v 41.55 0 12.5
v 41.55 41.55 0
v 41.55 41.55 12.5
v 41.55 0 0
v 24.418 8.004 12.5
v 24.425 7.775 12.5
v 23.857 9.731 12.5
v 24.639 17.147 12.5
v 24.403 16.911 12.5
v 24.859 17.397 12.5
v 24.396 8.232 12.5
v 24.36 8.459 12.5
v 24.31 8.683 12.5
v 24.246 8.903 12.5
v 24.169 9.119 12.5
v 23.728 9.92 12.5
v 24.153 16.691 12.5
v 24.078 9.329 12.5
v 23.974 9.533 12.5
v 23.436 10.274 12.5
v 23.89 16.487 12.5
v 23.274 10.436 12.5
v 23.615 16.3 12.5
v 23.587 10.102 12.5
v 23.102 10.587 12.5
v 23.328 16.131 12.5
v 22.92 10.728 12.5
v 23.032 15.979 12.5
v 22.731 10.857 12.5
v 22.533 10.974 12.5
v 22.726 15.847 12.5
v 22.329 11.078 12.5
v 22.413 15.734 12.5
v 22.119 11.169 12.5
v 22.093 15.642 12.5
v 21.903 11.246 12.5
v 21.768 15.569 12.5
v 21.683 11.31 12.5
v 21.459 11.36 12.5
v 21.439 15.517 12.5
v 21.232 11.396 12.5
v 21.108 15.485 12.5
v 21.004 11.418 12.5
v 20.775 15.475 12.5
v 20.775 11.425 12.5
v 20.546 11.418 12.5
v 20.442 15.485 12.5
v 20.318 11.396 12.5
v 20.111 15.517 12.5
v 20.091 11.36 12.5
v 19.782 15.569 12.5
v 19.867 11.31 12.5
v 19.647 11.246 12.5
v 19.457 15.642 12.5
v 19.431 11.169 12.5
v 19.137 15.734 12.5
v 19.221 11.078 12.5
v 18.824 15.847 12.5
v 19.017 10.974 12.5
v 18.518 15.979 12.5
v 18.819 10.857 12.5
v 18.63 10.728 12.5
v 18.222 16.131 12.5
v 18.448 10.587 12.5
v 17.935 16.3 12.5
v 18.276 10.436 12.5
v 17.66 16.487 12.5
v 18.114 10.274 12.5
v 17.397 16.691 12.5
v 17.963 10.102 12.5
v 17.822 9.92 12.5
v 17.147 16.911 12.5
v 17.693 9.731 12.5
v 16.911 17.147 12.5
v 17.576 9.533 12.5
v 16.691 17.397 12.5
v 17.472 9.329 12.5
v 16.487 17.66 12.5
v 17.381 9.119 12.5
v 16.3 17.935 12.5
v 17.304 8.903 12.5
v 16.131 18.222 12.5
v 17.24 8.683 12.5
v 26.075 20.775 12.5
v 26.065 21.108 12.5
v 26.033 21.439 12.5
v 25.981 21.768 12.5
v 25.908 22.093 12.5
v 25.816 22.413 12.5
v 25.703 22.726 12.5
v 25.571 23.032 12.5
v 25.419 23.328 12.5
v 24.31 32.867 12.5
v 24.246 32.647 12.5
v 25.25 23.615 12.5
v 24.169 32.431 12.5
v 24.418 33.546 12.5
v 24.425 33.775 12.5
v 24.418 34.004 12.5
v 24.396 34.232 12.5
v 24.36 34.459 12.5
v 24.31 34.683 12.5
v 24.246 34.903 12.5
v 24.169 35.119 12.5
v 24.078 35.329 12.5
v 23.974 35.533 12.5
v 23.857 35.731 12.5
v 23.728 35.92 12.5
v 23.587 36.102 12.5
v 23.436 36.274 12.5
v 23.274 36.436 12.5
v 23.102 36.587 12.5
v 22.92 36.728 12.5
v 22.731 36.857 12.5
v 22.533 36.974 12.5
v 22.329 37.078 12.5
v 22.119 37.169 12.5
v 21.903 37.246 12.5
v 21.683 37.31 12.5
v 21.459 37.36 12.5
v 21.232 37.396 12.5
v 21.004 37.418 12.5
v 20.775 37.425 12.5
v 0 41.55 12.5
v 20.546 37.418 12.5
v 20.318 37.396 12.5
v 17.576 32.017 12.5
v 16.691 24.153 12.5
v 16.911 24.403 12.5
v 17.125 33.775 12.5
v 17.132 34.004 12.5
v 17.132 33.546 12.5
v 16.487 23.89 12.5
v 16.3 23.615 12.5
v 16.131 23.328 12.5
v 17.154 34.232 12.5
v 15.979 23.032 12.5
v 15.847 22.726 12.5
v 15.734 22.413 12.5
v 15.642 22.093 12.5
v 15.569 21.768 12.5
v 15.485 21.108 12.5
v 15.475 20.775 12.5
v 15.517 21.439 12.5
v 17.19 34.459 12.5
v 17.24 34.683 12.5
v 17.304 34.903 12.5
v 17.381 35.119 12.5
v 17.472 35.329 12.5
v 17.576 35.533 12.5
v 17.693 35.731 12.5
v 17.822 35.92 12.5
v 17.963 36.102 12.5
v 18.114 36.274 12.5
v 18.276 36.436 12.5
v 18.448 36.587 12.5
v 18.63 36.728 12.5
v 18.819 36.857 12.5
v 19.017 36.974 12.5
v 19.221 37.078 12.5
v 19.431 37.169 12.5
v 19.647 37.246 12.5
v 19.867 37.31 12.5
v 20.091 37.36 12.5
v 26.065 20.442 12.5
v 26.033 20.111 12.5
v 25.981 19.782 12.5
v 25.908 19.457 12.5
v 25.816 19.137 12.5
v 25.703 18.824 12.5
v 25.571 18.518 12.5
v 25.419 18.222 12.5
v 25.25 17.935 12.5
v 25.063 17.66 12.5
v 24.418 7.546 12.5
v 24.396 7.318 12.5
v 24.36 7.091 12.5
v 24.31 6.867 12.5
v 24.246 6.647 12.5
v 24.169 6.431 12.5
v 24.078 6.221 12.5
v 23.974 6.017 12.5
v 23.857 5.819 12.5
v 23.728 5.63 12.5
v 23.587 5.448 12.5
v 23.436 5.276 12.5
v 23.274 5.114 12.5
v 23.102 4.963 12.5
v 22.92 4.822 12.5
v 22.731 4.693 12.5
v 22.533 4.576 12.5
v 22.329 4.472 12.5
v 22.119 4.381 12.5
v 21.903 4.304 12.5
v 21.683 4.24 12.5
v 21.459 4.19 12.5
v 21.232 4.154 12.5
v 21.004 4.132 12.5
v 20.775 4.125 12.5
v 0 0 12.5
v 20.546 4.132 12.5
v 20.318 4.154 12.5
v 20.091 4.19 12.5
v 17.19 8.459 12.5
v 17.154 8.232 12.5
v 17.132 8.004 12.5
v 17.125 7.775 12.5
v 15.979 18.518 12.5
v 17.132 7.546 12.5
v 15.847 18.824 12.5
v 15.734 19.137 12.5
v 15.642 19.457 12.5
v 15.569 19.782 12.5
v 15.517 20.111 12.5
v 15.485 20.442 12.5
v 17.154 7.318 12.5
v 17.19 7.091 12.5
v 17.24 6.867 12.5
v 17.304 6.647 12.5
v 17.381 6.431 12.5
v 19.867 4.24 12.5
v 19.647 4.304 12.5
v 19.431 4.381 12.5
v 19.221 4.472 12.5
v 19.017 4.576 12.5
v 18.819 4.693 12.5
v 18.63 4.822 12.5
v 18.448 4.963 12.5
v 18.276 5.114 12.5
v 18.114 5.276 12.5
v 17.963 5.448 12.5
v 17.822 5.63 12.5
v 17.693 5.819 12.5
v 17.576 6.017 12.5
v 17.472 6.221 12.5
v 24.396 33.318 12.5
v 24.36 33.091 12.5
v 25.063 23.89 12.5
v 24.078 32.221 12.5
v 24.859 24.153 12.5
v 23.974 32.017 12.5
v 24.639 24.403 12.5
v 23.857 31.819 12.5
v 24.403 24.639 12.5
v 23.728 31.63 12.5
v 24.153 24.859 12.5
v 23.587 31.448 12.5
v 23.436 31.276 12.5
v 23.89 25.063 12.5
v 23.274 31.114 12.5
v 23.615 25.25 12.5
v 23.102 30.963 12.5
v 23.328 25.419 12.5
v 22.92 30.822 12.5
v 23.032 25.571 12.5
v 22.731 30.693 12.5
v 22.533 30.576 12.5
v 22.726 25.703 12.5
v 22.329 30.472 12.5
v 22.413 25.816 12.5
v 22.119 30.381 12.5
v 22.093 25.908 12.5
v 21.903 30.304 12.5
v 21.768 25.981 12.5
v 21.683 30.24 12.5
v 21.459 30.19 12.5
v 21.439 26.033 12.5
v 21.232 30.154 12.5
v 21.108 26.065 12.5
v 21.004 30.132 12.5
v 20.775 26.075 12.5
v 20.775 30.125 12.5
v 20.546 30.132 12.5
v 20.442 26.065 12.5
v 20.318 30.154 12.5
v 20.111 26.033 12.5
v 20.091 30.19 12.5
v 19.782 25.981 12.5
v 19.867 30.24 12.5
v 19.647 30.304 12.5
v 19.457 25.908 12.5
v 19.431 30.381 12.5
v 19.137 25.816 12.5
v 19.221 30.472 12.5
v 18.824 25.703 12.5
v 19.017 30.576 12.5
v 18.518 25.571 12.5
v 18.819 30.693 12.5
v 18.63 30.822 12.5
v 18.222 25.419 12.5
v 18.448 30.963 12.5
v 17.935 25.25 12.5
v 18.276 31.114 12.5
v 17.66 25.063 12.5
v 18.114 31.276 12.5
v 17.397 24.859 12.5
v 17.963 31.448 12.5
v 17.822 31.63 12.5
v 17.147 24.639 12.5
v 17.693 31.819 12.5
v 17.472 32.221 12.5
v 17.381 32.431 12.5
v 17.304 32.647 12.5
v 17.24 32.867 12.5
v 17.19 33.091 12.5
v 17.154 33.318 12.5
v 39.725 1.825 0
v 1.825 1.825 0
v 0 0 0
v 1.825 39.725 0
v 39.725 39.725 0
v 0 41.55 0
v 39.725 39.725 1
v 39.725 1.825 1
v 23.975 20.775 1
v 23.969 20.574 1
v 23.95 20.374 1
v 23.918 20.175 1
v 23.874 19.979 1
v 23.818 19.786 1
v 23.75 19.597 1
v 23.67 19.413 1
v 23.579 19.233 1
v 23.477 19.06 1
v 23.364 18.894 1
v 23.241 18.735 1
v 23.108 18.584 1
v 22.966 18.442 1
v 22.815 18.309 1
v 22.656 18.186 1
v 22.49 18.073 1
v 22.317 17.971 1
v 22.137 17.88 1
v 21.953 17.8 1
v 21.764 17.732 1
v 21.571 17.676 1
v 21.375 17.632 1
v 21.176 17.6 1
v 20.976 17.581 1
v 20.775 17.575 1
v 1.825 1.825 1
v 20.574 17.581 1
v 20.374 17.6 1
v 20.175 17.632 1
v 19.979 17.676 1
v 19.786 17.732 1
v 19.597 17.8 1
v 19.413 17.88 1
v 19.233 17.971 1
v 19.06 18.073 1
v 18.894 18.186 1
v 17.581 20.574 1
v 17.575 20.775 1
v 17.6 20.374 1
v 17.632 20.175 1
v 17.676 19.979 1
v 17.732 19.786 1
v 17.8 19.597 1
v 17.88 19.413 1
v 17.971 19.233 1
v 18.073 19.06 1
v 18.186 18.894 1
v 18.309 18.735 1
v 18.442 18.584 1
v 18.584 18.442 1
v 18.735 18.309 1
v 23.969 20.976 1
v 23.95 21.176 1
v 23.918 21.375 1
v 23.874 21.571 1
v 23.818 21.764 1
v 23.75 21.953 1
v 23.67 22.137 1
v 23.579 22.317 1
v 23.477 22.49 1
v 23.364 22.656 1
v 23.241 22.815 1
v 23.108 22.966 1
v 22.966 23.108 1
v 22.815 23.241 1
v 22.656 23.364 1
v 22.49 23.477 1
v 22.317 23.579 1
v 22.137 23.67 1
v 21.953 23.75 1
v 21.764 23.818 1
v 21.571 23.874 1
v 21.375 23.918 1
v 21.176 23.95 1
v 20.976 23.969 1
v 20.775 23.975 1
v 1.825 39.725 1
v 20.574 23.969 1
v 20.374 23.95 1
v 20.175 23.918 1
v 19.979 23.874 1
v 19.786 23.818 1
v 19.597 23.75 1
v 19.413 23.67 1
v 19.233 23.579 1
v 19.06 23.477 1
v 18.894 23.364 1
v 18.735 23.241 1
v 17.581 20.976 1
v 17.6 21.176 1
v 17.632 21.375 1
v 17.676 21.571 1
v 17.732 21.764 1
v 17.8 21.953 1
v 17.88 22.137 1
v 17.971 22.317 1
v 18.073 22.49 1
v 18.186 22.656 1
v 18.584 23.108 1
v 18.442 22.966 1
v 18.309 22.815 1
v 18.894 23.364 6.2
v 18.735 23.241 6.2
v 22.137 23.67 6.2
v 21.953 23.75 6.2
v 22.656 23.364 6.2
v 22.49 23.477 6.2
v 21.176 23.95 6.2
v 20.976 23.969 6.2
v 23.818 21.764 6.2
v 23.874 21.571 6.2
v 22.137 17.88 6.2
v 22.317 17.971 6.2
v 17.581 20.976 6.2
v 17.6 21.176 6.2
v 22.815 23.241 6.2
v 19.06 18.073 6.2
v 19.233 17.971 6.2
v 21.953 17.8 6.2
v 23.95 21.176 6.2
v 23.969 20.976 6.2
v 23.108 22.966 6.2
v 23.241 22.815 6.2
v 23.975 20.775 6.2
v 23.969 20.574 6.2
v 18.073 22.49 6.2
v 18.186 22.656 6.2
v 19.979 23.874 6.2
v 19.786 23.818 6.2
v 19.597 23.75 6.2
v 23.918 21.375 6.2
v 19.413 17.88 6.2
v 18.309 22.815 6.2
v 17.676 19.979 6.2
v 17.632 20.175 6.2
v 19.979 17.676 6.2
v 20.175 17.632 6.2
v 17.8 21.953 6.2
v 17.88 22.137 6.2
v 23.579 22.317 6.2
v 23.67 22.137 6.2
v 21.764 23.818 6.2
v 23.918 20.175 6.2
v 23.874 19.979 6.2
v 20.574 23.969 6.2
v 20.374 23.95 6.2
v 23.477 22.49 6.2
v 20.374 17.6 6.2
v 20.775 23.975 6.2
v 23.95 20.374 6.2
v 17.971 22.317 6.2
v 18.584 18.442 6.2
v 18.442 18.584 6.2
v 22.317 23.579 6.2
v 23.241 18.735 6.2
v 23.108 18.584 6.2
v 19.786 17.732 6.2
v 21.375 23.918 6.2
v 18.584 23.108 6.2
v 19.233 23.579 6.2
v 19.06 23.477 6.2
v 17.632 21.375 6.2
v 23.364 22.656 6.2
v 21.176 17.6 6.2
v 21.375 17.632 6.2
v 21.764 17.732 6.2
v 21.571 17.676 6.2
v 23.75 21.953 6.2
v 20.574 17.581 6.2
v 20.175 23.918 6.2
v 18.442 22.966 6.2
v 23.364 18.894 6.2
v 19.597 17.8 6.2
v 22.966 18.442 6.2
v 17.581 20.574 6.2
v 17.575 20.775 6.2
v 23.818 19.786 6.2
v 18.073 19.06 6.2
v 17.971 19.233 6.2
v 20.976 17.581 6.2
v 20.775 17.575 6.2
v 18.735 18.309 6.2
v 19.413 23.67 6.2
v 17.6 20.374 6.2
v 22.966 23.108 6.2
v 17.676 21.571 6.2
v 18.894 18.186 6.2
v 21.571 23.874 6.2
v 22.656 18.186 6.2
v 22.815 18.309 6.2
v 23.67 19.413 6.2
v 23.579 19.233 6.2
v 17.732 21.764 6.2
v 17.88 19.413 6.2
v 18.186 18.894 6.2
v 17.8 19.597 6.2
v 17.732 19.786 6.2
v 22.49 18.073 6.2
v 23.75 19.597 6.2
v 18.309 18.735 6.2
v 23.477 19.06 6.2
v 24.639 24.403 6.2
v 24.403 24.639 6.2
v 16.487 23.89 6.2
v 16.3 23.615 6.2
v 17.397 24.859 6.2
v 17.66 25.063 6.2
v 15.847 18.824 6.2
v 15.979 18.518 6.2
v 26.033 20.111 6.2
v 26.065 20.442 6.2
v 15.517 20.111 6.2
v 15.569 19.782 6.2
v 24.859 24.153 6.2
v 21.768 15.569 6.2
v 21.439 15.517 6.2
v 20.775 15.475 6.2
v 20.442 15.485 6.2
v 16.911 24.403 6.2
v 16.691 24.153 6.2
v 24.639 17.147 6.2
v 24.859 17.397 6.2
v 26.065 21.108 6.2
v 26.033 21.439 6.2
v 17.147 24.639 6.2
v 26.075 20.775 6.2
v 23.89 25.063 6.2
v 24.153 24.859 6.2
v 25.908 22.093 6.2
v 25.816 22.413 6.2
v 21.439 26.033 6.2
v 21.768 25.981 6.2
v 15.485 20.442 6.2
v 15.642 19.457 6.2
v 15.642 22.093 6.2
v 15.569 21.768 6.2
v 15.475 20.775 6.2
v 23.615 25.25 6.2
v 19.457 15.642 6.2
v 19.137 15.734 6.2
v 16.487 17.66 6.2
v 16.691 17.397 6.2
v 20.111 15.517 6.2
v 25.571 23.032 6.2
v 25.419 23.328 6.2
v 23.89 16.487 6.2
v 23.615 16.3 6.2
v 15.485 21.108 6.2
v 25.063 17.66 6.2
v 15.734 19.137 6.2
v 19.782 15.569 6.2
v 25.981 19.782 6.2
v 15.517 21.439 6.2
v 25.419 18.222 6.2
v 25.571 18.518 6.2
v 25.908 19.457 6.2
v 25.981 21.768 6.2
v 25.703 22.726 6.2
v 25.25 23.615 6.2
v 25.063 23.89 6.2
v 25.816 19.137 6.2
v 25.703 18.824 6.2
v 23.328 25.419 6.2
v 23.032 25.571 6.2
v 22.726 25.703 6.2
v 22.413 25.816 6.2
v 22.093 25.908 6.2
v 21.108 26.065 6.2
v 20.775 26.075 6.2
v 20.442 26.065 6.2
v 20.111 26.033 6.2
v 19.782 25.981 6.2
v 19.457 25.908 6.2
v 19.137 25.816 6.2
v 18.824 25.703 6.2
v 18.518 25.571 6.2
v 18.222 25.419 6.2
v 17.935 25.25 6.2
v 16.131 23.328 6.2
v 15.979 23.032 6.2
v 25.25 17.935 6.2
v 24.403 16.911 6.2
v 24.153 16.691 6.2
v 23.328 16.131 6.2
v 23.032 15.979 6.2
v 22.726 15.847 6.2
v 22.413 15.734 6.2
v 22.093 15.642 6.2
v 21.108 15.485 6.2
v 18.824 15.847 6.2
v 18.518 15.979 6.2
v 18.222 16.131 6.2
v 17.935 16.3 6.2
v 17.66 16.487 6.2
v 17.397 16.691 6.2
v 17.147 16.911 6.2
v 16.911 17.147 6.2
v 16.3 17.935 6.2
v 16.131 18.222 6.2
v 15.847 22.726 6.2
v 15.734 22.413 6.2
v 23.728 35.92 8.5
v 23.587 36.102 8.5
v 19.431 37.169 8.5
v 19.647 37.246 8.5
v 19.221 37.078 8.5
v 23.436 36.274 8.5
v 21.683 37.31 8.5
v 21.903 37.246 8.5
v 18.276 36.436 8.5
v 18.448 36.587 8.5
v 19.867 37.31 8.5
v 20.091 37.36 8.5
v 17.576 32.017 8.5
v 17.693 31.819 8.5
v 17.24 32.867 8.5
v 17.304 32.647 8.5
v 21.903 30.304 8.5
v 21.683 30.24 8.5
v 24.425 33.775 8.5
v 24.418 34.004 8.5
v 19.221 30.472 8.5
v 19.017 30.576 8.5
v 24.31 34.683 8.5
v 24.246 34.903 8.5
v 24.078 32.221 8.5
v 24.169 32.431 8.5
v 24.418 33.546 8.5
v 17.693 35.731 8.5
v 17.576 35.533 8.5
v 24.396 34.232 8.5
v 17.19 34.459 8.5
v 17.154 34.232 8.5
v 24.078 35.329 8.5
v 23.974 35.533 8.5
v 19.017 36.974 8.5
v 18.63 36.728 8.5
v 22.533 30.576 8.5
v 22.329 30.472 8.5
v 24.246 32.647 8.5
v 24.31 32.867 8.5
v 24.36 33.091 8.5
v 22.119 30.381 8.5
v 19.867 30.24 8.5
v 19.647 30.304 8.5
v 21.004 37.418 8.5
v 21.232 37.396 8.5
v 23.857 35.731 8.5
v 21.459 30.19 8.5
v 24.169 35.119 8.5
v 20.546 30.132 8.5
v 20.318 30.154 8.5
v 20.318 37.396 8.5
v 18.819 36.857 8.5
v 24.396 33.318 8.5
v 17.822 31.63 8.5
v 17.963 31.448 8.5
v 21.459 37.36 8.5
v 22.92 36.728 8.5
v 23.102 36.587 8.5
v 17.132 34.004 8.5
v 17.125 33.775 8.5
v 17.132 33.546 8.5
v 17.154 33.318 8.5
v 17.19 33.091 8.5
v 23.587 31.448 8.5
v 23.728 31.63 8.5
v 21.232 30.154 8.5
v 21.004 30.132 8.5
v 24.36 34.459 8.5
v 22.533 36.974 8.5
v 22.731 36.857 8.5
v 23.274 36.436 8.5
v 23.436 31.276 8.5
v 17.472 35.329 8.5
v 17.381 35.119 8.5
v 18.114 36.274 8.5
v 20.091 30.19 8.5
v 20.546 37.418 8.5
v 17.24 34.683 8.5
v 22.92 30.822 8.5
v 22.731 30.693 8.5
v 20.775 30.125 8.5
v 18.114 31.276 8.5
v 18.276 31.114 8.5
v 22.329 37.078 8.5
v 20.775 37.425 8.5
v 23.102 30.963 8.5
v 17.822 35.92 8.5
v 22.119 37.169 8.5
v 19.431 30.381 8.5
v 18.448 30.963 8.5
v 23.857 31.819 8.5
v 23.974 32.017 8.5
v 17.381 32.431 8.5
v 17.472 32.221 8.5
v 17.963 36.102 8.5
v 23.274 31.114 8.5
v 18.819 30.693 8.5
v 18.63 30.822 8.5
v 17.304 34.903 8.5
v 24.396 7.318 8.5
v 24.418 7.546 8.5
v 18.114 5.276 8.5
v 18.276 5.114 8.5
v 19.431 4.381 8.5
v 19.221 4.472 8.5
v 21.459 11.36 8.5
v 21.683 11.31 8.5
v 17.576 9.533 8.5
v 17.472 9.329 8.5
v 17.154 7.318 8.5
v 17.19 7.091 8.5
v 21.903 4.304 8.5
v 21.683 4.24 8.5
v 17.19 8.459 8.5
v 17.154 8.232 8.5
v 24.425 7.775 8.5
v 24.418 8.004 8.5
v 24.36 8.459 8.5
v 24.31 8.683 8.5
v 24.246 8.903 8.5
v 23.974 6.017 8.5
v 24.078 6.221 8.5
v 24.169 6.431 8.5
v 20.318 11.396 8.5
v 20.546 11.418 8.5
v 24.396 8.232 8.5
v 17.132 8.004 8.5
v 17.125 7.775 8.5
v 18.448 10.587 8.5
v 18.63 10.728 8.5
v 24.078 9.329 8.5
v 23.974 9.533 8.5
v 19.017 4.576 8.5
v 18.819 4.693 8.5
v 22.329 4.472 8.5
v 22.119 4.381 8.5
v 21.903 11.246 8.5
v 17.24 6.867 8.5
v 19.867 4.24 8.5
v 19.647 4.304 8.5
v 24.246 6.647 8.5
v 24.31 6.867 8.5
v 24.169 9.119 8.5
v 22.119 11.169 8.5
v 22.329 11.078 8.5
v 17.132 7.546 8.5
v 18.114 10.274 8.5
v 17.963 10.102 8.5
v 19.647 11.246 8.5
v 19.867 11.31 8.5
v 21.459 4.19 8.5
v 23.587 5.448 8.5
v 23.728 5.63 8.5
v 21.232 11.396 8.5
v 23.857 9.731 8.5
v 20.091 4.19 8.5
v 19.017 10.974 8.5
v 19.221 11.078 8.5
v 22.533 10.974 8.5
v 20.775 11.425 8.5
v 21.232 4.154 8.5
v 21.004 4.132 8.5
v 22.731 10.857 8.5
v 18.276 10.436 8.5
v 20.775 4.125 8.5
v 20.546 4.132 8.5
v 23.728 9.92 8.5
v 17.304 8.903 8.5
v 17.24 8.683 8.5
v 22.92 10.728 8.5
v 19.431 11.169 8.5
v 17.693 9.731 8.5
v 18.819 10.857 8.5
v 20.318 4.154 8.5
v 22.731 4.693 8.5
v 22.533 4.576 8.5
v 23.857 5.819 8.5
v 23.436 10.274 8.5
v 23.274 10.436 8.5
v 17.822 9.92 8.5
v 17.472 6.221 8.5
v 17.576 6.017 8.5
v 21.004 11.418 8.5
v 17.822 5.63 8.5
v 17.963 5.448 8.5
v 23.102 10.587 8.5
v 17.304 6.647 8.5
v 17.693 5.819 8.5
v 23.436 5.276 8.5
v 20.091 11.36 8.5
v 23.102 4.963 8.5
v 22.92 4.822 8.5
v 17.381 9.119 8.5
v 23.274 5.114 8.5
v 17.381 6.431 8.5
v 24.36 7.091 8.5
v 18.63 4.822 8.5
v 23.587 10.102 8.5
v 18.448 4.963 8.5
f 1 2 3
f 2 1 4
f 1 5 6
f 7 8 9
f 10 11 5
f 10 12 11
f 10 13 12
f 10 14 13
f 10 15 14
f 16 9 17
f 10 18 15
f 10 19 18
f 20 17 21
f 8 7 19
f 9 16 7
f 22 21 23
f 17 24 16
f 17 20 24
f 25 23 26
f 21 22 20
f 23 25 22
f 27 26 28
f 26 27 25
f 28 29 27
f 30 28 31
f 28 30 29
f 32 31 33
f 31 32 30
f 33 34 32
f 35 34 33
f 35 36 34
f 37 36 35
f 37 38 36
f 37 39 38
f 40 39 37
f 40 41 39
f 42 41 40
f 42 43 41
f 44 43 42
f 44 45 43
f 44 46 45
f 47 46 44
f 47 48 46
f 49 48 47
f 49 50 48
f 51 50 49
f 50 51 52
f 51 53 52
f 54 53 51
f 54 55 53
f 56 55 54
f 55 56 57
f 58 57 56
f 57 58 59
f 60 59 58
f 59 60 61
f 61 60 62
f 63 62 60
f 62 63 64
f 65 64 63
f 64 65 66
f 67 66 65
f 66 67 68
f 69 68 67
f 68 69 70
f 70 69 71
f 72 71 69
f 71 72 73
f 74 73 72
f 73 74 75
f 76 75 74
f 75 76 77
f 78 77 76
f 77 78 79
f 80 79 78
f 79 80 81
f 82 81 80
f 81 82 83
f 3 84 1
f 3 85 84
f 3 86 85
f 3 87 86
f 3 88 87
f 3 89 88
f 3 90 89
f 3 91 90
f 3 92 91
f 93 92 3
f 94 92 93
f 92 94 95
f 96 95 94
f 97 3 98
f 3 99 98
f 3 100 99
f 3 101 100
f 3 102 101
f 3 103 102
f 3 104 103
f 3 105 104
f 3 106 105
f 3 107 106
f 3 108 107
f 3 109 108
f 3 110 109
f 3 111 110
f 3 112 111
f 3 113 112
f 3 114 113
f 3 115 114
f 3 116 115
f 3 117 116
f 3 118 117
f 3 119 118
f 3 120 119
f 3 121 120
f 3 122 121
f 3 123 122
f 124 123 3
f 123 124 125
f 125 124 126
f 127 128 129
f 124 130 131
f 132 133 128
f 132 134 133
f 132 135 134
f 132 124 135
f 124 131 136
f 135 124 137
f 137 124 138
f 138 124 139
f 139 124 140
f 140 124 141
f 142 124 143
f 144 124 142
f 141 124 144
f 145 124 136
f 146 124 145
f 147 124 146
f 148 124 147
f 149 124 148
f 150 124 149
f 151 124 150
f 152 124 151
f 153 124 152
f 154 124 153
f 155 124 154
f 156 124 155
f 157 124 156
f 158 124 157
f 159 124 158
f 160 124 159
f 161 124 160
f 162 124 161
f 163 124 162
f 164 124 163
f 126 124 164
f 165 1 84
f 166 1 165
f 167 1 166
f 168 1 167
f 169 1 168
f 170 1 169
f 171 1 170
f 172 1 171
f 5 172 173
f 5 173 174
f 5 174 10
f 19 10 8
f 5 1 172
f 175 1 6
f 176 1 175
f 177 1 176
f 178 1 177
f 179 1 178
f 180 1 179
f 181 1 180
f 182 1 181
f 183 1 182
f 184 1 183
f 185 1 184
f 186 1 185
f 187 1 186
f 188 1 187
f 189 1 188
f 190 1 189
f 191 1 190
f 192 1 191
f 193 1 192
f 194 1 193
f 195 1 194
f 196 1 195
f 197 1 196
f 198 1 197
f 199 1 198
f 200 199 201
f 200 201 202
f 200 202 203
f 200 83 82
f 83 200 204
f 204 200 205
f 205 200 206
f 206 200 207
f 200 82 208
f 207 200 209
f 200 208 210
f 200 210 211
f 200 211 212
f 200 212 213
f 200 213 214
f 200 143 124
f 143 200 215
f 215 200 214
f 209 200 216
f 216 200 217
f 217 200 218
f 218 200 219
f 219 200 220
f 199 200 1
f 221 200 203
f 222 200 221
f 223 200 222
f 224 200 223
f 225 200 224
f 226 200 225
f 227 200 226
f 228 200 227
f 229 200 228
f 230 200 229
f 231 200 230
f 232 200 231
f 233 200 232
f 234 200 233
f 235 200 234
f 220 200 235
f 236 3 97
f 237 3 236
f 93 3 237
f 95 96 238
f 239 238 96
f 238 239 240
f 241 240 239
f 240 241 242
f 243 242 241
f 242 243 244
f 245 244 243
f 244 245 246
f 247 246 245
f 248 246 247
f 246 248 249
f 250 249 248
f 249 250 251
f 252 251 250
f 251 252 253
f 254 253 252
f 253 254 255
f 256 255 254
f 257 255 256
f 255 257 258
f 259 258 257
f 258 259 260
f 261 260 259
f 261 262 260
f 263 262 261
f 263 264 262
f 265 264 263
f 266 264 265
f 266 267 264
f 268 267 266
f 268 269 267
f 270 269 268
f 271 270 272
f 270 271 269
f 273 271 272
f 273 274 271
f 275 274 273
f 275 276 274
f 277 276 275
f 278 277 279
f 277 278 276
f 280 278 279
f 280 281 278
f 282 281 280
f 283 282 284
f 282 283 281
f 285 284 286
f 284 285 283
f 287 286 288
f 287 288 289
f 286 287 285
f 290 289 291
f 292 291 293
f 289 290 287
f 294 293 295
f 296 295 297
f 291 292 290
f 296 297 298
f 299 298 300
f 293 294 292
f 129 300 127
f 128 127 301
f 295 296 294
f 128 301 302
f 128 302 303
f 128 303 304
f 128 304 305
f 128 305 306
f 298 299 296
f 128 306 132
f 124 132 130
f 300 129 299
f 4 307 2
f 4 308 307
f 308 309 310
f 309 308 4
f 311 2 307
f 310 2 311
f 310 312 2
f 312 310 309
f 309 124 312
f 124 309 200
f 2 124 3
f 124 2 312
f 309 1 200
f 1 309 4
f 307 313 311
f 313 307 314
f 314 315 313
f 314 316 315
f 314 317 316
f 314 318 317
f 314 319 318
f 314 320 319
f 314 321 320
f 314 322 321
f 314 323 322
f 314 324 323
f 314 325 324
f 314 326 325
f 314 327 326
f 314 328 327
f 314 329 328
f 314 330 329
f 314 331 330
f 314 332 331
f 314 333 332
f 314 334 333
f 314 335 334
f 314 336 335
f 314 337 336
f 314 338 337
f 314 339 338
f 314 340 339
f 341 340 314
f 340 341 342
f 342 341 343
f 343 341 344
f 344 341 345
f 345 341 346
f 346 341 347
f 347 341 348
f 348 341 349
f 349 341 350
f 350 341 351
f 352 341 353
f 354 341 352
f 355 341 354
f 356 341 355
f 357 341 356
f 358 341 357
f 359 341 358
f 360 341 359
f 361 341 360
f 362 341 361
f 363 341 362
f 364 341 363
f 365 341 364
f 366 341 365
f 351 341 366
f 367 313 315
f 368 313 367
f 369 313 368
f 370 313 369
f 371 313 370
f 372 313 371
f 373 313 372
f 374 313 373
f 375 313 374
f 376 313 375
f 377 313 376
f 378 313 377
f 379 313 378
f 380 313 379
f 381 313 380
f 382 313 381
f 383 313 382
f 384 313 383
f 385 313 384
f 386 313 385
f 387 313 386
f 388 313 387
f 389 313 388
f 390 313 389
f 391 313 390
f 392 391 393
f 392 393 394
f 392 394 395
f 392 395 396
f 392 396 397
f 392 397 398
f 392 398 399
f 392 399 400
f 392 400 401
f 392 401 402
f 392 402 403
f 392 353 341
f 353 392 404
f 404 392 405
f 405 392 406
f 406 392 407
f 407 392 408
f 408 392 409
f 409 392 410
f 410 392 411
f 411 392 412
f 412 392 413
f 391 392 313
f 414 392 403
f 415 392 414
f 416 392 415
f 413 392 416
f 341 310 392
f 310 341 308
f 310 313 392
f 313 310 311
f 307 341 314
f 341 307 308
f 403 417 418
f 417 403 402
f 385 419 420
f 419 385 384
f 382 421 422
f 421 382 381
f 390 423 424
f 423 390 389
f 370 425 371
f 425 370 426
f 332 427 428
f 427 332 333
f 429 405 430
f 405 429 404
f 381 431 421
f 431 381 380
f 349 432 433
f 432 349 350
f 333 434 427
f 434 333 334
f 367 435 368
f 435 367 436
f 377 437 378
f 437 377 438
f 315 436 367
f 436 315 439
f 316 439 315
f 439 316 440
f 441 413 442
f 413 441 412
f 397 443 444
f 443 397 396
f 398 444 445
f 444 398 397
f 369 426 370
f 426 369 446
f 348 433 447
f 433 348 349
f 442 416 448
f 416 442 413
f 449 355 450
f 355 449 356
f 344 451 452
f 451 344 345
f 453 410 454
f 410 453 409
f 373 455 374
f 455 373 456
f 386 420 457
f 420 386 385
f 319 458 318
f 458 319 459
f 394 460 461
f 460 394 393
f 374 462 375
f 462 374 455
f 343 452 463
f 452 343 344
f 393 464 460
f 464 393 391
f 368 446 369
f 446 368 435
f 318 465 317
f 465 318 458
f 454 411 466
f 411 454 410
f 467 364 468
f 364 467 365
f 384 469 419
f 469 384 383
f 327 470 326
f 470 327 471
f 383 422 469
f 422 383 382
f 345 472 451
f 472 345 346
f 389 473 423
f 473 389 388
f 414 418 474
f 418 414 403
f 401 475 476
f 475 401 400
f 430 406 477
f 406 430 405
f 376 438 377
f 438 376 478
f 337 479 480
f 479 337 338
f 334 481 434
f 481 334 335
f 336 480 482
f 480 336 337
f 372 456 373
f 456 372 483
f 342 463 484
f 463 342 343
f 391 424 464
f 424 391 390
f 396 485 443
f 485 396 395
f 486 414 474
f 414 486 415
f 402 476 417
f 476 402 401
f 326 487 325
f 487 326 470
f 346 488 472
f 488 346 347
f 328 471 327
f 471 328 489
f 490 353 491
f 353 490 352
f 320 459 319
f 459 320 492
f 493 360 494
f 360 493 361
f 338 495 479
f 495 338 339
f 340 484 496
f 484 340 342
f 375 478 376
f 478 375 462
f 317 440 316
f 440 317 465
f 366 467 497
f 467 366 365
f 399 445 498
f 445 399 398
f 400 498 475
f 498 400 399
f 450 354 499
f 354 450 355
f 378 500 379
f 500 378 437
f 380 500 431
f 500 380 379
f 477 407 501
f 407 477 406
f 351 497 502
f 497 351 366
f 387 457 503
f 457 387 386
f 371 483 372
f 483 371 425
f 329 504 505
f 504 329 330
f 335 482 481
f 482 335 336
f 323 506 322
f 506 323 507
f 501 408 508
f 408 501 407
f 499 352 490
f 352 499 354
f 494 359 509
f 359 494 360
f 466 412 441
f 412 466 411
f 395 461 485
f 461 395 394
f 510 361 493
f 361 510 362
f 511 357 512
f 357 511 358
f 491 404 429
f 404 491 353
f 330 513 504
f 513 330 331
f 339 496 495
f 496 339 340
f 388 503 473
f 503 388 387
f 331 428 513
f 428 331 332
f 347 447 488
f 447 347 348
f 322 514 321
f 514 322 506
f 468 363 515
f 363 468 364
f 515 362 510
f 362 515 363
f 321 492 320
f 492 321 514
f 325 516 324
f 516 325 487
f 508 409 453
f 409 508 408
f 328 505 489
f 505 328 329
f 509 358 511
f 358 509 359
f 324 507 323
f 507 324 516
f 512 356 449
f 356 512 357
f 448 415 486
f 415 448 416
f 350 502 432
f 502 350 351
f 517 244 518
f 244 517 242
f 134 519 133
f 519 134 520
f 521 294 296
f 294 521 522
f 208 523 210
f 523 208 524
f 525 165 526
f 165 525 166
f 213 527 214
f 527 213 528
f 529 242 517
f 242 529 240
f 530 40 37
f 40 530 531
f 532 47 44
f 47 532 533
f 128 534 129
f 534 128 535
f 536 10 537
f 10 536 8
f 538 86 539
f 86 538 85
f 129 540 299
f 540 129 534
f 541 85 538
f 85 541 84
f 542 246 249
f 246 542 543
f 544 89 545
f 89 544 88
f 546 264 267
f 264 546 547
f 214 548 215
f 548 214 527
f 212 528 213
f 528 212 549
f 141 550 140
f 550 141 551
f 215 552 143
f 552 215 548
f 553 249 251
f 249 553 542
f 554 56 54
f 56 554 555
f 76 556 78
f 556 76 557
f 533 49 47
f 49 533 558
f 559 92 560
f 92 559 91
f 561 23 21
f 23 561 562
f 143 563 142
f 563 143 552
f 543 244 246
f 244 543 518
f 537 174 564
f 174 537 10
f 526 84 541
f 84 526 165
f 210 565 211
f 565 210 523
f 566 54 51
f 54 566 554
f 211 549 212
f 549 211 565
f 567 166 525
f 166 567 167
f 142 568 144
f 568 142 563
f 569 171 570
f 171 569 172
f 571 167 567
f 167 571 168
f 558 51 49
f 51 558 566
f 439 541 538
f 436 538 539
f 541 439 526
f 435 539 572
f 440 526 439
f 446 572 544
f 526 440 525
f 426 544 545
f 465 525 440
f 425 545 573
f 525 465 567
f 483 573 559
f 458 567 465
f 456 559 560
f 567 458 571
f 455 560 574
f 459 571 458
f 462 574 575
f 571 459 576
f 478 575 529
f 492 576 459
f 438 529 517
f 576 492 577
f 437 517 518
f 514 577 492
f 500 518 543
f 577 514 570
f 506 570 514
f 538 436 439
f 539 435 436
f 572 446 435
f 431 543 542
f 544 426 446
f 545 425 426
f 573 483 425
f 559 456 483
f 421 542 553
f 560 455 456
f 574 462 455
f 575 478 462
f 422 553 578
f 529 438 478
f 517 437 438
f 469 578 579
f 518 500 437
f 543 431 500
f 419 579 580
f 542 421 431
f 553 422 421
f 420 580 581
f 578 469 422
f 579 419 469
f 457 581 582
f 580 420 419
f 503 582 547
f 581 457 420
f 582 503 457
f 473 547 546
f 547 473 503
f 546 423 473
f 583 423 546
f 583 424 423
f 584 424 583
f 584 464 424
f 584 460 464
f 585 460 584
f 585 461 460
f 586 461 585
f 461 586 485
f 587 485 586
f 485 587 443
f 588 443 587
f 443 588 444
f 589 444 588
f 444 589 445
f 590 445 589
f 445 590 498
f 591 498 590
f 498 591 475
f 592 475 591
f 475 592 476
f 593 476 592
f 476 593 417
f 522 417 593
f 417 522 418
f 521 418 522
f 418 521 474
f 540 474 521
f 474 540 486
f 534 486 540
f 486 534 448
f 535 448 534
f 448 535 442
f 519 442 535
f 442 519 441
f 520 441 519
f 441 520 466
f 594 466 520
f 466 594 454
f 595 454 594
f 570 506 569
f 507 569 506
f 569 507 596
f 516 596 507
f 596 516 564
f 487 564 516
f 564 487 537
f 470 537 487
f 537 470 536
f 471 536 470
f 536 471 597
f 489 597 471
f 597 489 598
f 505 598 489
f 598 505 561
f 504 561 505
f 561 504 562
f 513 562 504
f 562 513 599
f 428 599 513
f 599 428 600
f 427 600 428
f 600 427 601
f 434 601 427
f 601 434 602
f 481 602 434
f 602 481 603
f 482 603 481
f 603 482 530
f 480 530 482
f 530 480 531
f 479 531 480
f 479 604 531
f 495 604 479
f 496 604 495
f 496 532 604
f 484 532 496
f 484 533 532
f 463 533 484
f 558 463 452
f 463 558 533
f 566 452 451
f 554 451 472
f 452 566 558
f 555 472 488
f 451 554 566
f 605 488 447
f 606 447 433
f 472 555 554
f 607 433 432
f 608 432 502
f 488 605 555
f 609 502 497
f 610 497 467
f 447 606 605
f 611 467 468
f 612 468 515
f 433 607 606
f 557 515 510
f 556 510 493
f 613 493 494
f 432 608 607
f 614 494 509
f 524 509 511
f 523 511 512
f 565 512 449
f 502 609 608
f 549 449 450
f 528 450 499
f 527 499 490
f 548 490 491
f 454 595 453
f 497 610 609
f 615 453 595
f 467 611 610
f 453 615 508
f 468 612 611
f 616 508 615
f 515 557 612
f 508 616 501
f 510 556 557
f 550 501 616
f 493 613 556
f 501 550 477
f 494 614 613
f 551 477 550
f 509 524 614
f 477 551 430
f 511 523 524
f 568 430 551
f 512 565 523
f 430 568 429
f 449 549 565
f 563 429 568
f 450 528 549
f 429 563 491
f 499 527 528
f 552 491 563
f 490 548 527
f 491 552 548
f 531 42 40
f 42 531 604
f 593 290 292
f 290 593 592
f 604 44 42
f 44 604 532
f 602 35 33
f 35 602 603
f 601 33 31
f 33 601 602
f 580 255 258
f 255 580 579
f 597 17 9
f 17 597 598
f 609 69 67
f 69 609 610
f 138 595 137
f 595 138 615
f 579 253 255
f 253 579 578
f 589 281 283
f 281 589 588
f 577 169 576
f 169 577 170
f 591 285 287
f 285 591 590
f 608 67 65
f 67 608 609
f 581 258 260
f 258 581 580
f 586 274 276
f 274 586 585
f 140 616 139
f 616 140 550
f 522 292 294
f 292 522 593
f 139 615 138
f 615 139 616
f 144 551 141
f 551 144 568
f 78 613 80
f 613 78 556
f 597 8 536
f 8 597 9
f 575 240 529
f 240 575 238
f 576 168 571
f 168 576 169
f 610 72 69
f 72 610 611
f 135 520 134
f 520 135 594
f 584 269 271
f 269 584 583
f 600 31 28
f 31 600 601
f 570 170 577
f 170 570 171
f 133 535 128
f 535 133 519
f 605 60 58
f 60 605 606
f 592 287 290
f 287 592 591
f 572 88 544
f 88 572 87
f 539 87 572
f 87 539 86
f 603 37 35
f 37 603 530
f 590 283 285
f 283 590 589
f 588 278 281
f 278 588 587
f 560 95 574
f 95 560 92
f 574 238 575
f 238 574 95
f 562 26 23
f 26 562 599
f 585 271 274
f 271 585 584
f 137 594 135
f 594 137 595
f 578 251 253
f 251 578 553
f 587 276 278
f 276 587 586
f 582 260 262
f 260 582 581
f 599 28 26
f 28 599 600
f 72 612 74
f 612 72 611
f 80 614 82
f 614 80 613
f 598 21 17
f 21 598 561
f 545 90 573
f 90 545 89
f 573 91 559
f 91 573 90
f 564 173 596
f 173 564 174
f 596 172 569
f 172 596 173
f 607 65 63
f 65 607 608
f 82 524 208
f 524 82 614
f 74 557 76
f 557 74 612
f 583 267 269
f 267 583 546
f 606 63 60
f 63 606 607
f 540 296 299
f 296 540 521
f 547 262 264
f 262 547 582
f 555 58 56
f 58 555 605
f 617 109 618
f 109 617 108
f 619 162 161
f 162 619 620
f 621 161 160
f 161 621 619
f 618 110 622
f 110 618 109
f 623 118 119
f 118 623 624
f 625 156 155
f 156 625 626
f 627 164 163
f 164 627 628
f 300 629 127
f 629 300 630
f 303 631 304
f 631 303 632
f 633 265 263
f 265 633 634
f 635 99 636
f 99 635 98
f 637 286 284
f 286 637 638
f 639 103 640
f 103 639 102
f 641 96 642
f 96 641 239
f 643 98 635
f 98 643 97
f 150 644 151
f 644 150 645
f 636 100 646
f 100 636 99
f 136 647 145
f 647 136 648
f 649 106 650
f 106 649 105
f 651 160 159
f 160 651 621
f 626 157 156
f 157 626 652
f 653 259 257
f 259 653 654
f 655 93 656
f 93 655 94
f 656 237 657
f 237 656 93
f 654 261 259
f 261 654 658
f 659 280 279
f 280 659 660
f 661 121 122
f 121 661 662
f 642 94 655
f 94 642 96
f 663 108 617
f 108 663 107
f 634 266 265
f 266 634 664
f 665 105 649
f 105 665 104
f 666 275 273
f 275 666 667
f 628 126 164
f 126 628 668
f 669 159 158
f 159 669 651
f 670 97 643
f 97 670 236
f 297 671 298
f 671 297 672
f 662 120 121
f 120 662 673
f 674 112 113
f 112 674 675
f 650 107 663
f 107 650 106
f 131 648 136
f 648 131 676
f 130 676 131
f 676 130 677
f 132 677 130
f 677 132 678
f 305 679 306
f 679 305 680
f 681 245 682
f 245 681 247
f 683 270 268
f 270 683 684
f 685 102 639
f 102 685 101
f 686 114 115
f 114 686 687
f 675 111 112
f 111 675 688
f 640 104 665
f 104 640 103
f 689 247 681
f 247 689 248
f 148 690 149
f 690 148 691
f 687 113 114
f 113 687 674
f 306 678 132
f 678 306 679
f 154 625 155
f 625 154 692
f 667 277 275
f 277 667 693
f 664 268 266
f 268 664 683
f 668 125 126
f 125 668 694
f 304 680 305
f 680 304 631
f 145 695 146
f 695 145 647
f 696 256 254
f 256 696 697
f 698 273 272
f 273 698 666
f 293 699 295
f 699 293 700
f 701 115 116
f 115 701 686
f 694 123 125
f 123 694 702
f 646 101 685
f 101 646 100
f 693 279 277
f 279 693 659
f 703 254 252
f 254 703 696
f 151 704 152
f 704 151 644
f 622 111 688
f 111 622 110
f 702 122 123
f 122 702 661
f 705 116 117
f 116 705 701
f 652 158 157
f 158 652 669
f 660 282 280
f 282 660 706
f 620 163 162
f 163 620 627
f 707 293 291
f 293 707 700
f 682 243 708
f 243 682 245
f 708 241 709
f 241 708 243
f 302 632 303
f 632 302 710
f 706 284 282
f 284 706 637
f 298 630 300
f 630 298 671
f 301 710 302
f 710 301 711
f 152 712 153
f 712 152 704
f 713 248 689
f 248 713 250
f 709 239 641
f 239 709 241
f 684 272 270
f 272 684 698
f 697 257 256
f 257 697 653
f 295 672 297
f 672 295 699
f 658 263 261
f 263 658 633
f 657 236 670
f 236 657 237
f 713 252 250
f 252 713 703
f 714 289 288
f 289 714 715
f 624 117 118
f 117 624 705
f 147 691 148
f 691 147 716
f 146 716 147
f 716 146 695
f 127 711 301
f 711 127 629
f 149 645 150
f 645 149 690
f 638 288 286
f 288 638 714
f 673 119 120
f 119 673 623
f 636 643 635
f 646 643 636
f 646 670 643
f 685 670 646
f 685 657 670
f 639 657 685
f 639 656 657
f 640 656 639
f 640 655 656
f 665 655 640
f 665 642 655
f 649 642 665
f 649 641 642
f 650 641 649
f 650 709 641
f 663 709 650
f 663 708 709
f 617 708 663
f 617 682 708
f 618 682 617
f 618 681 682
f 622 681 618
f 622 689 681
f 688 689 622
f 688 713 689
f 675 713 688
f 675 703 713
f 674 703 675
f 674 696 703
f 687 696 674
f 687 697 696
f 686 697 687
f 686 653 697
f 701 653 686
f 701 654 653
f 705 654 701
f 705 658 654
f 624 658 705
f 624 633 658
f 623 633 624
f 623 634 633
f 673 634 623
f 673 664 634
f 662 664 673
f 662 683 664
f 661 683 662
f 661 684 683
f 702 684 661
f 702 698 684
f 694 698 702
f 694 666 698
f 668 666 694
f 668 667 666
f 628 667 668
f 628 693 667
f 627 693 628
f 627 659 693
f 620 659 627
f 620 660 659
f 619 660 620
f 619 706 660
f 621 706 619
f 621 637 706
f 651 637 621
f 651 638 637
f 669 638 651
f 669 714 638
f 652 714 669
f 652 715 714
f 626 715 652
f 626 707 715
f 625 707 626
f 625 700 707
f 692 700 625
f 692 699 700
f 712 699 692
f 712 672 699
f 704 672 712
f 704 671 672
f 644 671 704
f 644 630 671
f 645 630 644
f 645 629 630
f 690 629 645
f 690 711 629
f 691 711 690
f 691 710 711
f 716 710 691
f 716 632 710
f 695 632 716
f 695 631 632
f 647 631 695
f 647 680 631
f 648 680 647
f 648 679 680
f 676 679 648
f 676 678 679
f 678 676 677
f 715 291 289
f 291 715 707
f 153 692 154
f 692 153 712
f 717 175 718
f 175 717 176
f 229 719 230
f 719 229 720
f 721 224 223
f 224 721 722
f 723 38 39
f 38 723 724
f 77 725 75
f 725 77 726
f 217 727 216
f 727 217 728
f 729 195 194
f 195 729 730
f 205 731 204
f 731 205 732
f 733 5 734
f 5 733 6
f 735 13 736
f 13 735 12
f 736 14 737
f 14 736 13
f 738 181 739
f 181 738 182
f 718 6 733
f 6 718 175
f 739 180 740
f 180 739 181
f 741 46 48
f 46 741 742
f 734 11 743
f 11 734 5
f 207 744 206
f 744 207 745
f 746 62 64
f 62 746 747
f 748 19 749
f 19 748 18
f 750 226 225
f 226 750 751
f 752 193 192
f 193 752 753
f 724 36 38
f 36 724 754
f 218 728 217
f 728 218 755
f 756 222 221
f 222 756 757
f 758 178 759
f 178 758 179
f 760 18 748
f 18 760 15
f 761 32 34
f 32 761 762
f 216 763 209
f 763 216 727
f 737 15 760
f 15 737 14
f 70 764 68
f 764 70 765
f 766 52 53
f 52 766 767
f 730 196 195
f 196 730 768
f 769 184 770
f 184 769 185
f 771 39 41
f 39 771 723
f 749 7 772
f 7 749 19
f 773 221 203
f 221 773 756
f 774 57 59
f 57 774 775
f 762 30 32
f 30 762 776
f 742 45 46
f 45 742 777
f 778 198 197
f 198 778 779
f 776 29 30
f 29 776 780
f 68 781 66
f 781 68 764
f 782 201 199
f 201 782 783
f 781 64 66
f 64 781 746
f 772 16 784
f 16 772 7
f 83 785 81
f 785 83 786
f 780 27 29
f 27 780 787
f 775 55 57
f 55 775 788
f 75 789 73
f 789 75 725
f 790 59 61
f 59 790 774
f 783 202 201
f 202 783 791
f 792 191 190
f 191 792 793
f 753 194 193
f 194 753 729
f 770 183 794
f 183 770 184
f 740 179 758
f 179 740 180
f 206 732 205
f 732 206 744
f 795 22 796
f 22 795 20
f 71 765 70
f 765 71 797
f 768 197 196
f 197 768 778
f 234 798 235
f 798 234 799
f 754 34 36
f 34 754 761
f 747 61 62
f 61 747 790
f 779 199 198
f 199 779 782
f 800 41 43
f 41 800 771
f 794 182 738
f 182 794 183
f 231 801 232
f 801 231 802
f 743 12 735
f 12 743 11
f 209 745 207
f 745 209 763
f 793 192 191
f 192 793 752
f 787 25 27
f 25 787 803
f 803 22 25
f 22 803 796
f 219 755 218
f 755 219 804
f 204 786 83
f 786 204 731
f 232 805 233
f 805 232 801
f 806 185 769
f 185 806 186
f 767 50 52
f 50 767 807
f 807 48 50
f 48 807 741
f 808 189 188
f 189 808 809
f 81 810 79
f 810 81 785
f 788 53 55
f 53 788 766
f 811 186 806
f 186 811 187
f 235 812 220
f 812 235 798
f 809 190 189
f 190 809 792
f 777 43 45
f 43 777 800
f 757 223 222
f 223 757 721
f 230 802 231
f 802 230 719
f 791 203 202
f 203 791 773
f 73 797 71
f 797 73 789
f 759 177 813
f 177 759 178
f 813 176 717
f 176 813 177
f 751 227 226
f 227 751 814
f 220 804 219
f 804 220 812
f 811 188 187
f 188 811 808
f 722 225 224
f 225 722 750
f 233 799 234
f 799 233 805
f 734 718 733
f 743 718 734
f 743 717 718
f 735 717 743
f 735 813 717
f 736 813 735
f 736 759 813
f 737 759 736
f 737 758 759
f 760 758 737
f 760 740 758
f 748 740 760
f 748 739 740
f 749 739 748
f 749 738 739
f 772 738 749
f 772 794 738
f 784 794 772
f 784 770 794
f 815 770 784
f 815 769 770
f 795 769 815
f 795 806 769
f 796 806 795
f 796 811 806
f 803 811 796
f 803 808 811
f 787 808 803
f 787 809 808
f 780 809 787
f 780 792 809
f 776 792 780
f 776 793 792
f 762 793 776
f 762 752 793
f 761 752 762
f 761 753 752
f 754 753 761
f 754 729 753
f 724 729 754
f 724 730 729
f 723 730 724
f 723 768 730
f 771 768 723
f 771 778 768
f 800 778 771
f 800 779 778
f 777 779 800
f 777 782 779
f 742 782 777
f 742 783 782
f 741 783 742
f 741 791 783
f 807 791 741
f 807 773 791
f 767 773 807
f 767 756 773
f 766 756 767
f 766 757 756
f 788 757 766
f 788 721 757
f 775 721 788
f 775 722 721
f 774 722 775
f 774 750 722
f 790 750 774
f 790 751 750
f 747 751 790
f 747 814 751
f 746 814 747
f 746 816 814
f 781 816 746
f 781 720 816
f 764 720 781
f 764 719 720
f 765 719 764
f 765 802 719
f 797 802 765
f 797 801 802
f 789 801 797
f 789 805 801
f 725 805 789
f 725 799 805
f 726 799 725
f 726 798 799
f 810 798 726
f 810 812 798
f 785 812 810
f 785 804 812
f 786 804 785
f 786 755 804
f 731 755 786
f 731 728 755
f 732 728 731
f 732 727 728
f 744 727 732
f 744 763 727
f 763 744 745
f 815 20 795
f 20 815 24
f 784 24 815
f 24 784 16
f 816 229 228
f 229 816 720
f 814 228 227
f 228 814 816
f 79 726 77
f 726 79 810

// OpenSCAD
res = 100;
aa=13.2;
rr=1; //raio parafuso fixação offset
sss=12;
ere = 6;

difference(){
    translate([0,0,0]){
        cube([37.55+4,37.55+4,12.5]);
        //translate([(37.55+4)/2,0,2*12.5])rotate([-90,0,0])cylinder(37.55+4,9.1/2+0.15+4,9.1/2+0.15+4,$fn=res);
    }
    #translate([2-0.175,2-0.175,0])cube([37.55+2*0.175,37.55+2*0.175,1]);    
    #translate([(37.55+4)/2,(37.55+4)/2,-17])cylinder(5+9+5+12,6.4/2,6.4/2,$fn=res);
    //#translate([(37.55+4)/2,0,2*12.5])rotate([-90,0,0])cylinder(37.55+4,9.1/2+0.15,9.1/2+0.15,$fn=res);
    #translate([3+(37.55+4-36)/2,3,12.5]){
        #translate([-(3+(37.55+4-36)/2),-3,0])
        #translate([(37.55+4)/2,(37.55+4)/2,0])
        #translate([0,0,-6.3])
        #cylinder(6.3,10.1/2+0.25,10.1/2+0.25,$fn=res);
    }
    #translate([0,13,0])
    #translate([3+(37.55+4-36)/2,3,12.5])
    #translate([-(3+(37.55+4-36)/2),-3,0])
    #translate([(37.55+4)/2,(37.55+4)/2,0])
    #translate([0,0,-4])
    #cylinder(4,7/2+0.15,7/2+0.15,$fn=res);
    #translate([0,-13,0])
    #translate([3+(37.55+4-36)/2,3,12.5])
    #translate([-(3+(37.55+4-36)/2),-3,0])
    #translate([(37.55+4)/2,(37.55+4)/2,0])
    #translate([0,0,-4])
    #cylinder(4,7/2+0.15,7/2+0.15,$fn=res);
}
/*
translate([0,13,0])
translate([3+(37.55+4-36)/2,3,12.5])
translate([-(3+(37.55+4-36)/2),-3,0])
translate([(37.55+4)/2,(37.55+4)/2,0])
cylinder(6.3,7/2,7/2,$fn=res);
translate([0,-13,0])
translate([3+(37.55+4-36)/2,3,12.5])
translate([-(3+(37.55+4-36)/2),-3,0])
translate([(37.55+4)/2,(37.55+4)/2,0])
cylinder(6.3,7/2,7/2,$fn=res);
*/


//cylinder(6.3+40,7/2+0.15,7/2+0.15,$fn=res);

// O tamanho do parafuso:
//15.4-5.9+8.8
//15.4-5.9=9.5
// tem que ser maior que 9.5
